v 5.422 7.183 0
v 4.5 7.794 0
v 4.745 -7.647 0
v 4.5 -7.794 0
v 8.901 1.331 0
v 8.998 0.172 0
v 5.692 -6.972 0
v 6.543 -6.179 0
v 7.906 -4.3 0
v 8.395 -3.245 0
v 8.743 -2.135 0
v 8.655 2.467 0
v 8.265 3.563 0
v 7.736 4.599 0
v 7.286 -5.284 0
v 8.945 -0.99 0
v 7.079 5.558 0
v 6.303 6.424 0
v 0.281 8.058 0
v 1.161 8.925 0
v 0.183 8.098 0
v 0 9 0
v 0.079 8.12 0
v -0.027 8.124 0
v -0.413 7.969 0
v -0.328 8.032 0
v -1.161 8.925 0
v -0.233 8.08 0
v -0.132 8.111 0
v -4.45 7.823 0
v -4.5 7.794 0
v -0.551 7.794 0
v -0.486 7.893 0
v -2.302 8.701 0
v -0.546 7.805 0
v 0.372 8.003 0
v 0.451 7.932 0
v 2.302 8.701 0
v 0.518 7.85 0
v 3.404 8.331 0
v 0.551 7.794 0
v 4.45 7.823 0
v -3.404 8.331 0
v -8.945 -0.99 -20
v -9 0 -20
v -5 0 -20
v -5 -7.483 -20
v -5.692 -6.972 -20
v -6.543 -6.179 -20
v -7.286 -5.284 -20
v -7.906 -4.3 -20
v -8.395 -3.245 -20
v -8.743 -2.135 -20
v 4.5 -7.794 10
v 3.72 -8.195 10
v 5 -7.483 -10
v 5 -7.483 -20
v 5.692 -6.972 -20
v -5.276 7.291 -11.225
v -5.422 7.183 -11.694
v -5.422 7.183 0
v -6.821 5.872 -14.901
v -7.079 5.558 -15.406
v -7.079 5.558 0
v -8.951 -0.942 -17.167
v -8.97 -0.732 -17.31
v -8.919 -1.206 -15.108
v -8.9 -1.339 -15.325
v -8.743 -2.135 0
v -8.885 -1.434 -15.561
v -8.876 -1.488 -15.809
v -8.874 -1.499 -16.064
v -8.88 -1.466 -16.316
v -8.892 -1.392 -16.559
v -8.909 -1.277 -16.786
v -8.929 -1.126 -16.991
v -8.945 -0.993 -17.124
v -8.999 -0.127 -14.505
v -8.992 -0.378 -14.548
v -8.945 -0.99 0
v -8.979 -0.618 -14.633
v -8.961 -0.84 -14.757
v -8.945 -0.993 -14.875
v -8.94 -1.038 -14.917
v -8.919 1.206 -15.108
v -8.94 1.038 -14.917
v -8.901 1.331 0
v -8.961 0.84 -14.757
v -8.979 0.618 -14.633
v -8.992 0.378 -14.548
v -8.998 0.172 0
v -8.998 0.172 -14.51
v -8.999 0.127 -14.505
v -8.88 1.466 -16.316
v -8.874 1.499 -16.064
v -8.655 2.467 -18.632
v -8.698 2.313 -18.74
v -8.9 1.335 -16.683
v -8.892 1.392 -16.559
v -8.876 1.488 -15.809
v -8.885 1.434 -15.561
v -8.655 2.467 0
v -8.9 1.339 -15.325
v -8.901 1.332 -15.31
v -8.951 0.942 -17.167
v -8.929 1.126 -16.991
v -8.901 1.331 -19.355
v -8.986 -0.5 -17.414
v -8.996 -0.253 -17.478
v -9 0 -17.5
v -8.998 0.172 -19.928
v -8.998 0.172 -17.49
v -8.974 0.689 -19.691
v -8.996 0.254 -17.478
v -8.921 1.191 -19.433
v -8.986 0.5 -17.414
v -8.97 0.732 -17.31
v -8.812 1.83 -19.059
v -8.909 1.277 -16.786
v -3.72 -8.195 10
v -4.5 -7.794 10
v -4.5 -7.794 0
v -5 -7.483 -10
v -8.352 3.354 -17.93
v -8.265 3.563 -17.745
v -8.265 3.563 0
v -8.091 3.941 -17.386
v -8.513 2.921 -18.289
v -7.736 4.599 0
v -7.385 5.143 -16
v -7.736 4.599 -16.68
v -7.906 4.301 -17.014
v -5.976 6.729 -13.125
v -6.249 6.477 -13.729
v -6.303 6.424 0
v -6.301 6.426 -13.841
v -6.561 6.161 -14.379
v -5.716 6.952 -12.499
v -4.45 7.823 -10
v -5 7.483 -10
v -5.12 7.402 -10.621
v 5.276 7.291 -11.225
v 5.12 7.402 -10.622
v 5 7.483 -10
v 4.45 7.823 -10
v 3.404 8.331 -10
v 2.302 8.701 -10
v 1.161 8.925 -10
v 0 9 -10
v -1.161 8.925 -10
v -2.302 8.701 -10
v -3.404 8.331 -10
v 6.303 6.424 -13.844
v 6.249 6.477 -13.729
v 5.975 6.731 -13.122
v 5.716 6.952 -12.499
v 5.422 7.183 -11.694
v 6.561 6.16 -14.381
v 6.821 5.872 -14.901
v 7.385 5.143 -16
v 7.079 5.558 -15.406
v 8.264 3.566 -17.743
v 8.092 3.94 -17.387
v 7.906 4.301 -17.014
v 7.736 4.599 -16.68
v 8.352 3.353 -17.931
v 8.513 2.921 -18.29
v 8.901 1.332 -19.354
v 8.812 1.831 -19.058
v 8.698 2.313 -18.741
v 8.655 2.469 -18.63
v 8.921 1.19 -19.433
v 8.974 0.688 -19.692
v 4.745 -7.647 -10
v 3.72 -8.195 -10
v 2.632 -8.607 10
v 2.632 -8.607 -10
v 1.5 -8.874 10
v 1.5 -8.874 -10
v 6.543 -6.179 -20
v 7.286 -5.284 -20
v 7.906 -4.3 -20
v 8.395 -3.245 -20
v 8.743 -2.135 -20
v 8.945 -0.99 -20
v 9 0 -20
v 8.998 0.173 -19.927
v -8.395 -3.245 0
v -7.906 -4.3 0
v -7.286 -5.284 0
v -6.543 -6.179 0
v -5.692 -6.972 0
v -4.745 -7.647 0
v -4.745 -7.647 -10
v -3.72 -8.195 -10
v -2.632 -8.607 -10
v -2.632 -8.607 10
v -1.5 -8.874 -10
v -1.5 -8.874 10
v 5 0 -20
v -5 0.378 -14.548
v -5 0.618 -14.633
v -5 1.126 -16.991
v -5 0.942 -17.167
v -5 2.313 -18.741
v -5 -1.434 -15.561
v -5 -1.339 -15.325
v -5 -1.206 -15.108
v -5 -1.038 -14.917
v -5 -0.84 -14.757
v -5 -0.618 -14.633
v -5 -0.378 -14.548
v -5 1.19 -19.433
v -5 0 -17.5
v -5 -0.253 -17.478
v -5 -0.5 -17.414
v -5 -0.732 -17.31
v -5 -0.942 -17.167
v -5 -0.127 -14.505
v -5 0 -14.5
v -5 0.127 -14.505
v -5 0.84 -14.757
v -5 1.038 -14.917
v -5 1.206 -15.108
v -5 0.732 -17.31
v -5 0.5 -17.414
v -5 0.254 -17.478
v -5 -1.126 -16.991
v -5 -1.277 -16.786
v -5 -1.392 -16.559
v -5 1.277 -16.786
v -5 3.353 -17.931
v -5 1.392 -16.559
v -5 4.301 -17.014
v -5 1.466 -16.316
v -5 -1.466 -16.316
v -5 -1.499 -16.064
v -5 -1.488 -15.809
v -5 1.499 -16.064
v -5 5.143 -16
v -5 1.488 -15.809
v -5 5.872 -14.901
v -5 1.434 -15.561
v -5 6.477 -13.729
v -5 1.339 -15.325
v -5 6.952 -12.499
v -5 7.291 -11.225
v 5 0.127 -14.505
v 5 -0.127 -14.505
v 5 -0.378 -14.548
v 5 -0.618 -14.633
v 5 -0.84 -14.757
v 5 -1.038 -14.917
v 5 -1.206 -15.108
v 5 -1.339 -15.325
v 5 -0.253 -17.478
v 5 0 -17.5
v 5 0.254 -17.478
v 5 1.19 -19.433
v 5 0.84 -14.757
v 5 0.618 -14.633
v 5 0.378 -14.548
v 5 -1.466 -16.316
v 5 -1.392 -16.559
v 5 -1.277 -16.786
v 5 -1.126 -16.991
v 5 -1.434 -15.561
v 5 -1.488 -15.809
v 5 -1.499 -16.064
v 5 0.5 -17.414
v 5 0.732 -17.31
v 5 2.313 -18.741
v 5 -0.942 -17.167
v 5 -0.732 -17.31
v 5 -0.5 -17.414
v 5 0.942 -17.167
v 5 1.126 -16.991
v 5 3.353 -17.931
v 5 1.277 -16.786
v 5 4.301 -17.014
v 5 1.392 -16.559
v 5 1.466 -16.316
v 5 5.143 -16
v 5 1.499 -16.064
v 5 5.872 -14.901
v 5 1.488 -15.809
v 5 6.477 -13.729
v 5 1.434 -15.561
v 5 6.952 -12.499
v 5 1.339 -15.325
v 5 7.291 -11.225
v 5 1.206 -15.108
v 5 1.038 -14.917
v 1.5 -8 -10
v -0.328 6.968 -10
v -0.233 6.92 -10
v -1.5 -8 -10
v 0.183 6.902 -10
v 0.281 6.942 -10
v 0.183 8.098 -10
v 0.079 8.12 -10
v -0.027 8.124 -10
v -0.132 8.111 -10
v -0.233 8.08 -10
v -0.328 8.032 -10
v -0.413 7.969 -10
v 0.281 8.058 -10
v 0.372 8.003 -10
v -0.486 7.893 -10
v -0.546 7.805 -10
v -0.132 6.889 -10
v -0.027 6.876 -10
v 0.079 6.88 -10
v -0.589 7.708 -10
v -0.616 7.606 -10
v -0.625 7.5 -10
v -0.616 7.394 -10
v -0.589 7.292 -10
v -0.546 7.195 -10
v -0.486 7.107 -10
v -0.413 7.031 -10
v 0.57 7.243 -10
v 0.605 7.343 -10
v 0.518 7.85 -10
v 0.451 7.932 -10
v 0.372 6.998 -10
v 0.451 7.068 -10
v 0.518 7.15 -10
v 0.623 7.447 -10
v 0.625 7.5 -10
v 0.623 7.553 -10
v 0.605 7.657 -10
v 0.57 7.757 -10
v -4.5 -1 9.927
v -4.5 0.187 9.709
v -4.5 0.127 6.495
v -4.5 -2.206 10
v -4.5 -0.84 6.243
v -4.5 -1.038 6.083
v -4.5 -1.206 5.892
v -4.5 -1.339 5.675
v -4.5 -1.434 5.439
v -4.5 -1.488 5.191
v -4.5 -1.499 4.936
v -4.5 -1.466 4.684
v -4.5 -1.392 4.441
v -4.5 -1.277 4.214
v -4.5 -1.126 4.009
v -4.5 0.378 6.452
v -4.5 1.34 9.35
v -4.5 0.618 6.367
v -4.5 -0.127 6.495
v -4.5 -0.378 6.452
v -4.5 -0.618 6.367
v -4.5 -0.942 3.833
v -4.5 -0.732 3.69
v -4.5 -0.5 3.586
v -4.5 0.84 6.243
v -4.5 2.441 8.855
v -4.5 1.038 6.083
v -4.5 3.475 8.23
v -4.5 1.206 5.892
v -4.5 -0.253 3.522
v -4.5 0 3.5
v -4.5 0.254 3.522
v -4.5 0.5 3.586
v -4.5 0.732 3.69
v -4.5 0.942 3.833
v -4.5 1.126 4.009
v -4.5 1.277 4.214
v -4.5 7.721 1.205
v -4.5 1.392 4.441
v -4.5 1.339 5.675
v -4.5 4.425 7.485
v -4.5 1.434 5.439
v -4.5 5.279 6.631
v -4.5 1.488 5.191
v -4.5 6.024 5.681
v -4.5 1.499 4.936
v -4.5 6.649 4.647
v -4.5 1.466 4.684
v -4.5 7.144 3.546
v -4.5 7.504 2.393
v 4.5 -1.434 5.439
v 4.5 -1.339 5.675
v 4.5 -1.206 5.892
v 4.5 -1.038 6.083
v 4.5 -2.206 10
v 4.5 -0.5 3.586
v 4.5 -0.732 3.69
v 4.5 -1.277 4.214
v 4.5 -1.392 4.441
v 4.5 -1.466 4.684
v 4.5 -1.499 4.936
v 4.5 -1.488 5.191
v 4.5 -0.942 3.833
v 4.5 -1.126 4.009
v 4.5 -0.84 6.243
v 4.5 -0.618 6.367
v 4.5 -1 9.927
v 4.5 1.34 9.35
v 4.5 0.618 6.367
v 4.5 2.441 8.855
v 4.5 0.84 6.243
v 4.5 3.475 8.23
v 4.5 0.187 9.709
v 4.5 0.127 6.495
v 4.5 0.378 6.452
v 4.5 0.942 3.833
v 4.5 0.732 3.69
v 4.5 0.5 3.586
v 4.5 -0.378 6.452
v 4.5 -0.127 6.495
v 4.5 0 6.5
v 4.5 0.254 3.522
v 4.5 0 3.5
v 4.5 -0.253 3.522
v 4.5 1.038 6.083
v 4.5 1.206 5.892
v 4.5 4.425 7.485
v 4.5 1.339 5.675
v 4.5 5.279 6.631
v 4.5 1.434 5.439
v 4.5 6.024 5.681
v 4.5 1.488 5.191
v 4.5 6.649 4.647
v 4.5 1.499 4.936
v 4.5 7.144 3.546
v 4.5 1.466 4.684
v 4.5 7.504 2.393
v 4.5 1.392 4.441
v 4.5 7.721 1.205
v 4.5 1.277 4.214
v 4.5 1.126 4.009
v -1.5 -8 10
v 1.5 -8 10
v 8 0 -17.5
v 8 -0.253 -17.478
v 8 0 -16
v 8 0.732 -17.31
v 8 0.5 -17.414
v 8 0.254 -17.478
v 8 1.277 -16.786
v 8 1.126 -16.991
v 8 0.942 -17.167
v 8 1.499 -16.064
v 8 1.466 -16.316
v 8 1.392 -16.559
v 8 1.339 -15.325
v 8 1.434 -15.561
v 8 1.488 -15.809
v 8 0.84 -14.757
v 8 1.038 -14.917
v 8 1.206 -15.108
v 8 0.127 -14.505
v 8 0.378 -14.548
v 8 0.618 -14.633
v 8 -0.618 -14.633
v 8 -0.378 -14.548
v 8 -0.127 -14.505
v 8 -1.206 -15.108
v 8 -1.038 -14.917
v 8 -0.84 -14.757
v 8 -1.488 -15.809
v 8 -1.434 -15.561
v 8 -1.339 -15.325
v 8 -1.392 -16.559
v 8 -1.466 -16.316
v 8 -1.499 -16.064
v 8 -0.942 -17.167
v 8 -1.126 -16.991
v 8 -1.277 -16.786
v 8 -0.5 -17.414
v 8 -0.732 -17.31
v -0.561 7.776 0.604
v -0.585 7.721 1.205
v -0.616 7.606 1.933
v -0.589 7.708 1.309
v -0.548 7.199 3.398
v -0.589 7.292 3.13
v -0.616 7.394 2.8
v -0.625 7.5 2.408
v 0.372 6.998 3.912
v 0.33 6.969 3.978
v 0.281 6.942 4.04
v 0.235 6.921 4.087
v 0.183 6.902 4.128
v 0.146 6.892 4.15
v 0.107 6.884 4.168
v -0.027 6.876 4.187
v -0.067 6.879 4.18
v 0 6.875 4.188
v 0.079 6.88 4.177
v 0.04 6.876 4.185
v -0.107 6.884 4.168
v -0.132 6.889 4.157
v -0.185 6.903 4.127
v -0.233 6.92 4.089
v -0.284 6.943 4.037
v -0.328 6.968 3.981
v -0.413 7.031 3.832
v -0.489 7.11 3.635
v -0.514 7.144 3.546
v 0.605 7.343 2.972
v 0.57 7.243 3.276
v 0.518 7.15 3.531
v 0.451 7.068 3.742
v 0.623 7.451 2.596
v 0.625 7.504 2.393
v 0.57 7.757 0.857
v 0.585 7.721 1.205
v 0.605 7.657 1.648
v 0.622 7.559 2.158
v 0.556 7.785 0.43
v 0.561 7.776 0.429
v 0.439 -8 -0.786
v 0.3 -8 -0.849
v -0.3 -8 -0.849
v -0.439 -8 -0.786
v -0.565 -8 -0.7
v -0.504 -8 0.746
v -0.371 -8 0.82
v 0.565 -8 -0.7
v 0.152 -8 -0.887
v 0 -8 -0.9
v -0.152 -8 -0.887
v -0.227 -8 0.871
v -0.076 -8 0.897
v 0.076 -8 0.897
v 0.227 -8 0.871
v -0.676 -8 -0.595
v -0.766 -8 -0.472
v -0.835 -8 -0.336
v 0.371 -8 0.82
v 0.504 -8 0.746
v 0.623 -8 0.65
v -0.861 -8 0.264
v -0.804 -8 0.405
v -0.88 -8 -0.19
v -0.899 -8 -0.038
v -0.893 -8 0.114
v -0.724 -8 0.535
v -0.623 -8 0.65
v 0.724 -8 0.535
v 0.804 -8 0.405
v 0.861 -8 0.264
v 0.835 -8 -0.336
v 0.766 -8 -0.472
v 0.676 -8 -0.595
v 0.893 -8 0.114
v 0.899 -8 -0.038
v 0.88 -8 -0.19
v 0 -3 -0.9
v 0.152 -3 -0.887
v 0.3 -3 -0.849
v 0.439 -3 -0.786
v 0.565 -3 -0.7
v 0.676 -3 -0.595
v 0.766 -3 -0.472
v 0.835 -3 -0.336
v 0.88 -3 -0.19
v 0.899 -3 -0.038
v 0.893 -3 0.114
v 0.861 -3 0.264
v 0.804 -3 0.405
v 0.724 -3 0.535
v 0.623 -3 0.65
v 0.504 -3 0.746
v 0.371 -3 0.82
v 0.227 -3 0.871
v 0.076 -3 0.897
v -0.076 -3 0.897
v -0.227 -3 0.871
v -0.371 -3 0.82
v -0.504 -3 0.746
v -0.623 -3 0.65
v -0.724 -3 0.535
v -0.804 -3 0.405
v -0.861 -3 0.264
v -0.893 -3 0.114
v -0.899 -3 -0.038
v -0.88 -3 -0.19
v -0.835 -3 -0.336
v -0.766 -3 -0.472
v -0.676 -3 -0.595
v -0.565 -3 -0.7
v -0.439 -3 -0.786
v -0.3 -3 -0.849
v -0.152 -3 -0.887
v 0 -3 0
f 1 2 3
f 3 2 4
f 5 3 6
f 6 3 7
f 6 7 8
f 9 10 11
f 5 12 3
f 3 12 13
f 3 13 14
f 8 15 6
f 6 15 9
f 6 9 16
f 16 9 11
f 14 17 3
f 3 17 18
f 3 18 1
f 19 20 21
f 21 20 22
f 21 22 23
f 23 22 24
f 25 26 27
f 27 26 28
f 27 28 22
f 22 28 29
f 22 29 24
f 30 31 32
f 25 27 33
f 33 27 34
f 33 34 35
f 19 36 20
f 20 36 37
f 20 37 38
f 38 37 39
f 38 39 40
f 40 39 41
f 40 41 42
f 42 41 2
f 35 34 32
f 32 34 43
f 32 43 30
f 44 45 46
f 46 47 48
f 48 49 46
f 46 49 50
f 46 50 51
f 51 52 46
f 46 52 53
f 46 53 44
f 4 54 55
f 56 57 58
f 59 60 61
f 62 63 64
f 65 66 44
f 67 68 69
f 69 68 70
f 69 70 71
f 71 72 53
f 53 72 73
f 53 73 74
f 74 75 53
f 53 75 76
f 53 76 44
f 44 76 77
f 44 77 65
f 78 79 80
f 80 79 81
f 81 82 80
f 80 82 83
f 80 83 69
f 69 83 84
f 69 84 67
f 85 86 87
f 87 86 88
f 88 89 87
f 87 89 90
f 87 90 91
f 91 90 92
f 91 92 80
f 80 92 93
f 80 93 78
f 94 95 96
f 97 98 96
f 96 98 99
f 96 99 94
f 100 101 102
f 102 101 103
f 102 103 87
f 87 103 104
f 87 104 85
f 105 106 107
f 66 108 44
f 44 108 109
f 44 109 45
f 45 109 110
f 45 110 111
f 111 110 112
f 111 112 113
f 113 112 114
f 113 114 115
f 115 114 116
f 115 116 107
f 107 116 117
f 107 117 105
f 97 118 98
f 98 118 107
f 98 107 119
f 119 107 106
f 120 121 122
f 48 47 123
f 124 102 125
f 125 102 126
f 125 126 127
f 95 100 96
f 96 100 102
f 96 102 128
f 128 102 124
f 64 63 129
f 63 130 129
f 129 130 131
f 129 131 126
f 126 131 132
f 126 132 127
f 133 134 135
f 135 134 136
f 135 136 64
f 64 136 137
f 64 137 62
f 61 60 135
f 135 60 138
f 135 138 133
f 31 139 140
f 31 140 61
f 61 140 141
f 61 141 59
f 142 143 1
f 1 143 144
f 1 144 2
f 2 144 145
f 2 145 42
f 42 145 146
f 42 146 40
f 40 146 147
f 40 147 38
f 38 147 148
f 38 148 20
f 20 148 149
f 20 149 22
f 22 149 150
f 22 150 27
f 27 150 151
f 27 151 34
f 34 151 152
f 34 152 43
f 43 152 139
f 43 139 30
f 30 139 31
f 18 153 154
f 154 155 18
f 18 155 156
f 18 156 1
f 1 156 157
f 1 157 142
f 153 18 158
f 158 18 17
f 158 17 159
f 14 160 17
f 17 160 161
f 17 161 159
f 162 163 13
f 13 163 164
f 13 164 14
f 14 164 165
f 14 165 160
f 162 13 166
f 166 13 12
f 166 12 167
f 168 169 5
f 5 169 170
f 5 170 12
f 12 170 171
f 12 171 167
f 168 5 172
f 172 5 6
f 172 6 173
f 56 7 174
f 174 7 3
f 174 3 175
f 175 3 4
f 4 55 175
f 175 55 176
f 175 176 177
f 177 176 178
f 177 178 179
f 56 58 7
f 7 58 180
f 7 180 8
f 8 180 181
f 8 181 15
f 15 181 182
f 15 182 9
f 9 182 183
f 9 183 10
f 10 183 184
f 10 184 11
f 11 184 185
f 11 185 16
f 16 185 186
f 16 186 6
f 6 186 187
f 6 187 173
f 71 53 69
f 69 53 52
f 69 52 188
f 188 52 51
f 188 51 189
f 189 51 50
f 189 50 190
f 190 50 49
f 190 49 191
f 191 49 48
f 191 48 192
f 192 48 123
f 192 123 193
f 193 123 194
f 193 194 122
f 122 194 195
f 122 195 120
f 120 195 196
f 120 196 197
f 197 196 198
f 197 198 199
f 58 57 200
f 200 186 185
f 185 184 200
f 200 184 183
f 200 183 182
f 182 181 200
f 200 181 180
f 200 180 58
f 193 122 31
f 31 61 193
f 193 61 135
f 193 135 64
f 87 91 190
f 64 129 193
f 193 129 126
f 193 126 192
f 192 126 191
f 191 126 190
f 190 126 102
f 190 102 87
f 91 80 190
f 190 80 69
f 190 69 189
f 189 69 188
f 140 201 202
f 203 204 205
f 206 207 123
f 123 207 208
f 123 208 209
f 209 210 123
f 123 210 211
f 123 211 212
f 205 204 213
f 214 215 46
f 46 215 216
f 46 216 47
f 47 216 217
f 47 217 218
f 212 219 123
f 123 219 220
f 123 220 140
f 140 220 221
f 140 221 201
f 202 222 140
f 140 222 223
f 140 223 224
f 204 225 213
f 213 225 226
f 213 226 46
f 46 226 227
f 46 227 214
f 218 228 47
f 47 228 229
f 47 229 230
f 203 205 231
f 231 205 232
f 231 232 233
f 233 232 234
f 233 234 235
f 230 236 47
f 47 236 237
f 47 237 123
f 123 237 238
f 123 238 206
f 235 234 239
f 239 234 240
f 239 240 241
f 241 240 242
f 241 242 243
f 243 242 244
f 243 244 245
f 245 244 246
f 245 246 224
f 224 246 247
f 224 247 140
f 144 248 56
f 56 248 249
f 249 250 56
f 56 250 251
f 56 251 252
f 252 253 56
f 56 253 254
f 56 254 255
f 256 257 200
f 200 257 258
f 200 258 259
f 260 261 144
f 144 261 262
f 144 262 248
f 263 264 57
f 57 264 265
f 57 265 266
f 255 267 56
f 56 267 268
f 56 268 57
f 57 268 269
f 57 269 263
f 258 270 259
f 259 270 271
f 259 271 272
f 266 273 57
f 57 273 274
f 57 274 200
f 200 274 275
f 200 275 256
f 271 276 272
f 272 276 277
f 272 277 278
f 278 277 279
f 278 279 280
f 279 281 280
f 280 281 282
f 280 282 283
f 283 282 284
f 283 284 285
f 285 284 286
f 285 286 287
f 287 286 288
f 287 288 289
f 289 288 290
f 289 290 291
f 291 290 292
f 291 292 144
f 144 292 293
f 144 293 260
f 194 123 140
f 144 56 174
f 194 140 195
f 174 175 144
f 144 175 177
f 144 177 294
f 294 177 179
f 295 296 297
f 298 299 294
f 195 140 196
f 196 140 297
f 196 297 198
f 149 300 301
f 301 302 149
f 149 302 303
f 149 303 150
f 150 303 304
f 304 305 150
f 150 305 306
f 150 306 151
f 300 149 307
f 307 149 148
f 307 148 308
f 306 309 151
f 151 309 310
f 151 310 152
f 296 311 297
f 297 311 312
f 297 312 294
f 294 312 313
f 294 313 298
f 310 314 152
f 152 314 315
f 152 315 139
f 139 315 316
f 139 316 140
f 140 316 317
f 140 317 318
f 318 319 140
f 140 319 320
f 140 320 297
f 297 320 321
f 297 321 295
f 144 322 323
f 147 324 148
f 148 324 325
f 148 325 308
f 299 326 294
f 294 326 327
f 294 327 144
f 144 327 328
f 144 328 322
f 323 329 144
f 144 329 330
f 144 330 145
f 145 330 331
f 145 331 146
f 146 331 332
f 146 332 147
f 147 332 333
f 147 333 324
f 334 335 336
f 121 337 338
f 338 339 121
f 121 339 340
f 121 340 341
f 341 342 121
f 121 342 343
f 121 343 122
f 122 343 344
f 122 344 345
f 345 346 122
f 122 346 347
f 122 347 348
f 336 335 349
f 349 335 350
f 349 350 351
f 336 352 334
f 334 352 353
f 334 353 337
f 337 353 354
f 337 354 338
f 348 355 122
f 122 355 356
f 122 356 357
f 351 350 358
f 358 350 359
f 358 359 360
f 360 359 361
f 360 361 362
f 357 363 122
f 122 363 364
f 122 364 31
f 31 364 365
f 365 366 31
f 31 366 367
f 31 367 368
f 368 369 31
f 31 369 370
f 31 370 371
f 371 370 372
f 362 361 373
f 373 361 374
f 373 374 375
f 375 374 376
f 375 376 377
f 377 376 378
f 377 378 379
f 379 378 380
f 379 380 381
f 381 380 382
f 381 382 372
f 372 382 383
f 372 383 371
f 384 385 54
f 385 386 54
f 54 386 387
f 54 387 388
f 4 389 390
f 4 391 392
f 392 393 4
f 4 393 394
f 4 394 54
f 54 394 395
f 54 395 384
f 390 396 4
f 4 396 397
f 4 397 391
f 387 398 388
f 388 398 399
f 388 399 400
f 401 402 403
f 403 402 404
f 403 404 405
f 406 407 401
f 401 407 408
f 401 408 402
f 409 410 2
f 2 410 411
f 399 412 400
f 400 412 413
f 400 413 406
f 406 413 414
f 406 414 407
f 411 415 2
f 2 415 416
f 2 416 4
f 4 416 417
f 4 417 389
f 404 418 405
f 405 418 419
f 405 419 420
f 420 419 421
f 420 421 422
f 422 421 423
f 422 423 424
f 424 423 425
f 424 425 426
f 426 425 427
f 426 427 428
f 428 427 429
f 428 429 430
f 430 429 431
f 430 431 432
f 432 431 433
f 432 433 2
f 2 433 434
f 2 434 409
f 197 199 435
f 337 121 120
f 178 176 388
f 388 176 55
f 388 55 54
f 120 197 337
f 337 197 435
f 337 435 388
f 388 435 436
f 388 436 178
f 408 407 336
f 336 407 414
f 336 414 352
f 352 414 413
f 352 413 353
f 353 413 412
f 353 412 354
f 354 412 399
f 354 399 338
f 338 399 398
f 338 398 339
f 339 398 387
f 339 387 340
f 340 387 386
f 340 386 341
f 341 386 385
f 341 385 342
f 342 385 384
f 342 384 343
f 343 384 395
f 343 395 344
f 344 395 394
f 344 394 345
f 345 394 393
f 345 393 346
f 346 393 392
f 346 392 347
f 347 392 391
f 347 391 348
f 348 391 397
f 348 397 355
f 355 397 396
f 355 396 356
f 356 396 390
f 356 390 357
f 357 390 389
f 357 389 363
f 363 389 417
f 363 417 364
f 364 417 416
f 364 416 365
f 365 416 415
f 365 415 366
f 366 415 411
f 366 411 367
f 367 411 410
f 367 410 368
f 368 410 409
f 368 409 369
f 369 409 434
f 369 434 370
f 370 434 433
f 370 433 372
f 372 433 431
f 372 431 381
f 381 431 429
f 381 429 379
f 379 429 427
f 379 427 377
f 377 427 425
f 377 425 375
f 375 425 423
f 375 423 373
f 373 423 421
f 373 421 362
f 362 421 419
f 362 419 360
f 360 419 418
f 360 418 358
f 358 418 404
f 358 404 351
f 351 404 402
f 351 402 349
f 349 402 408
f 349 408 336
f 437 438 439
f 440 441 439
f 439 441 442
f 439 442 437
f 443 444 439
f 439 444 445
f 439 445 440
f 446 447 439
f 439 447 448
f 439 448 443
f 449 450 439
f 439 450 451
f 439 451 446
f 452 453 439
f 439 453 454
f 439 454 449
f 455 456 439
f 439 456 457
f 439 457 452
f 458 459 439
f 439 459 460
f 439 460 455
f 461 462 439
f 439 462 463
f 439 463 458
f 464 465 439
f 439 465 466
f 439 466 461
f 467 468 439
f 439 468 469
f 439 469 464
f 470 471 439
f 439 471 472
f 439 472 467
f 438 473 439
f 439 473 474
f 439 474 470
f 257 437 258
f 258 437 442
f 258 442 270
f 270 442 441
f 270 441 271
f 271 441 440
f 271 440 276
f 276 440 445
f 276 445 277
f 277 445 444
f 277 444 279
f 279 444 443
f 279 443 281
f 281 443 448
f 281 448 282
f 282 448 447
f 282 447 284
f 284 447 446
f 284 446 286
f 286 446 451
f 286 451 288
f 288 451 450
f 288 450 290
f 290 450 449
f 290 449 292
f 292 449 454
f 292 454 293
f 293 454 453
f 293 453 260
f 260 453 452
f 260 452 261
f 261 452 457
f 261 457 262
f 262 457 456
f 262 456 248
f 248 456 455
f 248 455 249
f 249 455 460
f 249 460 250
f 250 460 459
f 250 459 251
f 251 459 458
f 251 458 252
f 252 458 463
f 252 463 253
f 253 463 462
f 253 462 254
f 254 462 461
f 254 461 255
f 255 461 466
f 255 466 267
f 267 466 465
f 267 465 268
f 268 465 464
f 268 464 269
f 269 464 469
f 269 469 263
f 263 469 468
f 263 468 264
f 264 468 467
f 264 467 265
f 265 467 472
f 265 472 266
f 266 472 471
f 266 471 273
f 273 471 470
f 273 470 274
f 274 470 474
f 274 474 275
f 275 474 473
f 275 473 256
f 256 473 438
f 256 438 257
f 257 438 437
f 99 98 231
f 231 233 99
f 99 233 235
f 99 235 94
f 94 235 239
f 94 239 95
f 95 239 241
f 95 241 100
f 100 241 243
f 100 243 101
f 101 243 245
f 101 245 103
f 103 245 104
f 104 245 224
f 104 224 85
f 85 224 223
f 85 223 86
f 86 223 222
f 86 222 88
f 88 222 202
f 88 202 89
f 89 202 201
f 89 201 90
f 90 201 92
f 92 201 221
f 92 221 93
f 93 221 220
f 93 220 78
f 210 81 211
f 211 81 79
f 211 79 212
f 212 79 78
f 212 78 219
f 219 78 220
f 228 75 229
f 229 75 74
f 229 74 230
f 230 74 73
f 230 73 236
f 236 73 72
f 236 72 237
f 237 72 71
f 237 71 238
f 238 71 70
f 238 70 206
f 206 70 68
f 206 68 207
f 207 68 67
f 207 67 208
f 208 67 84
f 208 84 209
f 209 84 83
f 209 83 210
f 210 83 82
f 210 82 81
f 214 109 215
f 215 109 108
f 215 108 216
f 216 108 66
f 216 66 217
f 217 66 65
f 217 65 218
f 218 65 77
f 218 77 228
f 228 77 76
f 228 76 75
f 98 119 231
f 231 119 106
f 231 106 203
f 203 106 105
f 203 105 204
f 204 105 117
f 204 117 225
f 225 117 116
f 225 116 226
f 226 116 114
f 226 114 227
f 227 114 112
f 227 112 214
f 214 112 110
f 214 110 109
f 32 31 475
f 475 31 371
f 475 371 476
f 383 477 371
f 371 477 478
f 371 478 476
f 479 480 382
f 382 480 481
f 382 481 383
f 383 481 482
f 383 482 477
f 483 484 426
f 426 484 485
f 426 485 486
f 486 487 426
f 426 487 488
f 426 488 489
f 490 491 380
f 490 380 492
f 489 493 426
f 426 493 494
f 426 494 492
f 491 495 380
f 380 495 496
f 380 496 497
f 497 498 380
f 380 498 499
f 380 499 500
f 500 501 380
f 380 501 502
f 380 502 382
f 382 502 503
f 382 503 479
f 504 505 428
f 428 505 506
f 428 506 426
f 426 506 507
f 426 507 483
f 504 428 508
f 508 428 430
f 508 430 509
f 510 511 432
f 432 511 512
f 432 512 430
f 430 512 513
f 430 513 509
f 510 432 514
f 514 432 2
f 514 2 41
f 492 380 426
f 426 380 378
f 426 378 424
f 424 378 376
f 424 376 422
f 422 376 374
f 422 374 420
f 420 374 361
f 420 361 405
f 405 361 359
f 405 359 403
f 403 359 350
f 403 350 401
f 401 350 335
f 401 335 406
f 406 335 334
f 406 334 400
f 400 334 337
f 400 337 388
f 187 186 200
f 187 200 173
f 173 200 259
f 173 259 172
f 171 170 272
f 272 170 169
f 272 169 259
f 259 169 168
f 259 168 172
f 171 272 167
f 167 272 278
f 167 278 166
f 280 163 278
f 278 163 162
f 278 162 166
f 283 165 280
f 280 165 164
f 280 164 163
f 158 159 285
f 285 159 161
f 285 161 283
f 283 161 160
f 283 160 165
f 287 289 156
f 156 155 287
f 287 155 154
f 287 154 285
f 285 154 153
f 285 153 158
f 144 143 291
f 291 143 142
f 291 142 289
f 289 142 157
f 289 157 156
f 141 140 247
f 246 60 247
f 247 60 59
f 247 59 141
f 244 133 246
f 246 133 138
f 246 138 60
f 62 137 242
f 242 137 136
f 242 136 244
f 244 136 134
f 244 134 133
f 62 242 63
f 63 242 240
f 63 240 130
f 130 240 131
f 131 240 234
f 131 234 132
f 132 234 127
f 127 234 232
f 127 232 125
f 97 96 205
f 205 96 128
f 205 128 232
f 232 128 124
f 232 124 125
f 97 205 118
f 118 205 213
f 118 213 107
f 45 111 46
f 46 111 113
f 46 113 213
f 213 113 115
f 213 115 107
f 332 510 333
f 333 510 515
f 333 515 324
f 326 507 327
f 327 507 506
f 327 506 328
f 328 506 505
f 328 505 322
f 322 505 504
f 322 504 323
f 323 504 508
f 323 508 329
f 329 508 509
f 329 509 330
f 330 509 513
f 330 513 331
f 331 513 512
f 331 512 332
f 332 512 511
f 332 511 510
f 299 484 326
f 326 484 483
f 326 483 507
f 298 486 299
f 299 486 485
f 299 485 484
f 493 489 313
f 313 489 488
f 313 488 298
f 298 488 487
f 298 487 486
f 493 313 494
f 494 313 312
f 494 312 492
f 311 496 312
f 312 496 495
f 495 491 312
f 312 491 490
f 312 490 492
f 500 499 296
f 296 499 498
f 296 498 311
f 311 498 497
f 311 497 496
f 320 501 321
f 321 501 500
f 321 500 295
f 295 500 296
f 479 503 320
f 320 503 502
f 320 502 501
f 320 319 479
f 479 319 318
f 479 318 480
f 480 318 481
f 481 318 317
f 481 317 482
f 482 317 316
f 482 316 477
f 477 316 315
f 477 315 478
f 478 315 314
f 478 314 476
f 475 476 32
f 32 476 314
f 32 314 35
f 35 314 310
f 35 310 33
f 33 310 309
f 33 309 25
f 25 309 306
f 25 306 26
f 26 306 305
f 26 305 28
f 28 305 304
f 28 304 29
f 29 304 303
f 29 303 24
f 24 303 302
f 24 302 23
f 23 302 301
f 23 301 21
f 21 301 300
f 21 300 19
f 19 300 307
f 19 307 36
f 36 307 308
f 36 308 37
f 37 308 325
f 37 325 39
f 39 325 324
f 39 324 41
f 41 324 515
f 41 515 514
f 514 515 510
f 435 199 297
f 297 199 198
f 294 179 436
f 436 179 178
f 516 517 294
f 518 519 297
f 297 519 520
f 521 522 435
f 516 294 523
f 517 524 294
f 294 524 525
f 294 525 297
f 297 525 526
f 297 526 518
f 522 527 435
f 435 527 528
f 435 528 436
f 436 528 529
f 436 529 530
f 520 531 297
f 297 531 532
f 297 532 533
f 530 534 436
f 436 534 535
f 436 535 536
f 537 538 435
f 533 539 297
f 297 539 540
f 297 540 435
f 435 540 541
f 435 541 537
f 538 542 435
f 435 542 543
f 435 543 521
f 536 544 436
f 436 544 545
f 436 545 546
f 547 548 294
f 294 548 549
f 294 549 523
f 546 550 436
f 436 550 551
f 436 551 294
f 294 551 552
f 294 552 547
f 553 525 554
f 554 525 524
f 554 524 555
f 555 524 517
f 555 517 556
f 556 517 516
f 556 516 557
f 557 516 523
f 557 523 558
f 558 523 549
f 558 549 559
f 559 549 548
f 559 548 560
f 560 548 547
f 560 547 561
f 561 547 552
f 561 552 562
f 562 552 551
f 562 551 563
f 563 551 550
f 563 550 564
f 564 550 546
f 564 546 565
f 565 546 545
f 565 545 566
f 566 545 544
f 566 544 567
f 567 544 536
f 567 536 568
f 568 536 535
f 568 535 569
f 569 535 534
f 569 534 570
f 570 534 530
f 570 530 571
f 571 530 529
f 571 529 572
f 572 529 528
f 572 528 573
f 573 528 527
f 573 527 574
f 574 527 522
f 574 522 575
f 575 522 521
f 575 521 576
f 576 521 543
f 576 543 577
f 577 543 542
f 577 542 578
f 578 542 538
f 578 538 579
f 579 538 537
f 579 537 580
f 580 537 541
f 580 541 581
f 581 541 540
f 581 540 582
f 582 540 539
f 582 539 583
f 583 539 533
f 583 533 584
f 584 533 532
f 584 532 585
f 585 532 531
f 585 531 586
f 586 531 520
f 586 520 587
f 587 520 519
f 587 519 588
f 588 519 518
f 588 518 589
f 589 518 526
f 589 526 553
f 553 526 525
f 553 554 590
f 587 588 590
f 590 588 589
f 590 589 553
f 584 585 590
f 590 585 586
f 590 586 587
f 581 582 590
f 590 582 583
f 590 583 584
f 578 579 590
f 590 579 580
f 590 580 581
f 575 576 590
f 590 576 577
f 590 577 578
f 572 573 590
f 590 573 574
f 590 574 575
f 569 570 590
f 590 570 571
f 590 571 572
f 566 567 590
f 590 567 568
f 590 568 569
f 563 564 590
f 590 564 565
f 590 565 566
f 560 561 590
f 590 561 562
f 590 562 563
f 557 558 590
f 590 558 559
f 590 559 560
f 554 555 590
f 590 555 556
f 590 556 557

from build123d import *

# Parameters (mm, degrees)
SKETCH1_R               = 9
BOSS_EXTRUDE1_DEPTH     = 20
CUT_EXTRUDE1_DEPTH      = 24.706539182
CUT_EXTRUDE1_DEPTH_BACK = 24.706539182
SKETCH2_W               = 10
SKETCH2_H               = 10
BOSS_EXTRUDE2_START     = 10
BOSS_EXTRUDE2_DEPTH     = 10
CUT_EXTRUDE2_DEPTH      = 8
CUT_EXTRUDE2_DEPTH_BACK = 24.706539182
SKETCH4_R               = 1.5
FILLET1_R               = 10
CUT_EXTRUDE3_DEPTH      = 24.706539343
CUT_EXTRUDE3_DEPTH_BACK = 24.706539343
SKETCH6_R               = 0.625
CUT_EXTRUDE4_DEPTH      = 32
CUT_EXTRUDE5_REACH      = 25.707
SKETCH7_W               = 3
SKETCH7_H               = 2
SKETCH8_R               = 0.9
CUT_EXTRUDE6_DEPTH      = 5


with BuildPart() as part:
    # Sketch1 → Boss-Extrude1 (new body)
    with BuildSketch(Plane.XY):
        Circle(SKETCH1_R)
    extrude(amount=-BOSS_EXTRUDE1_DEPTH)

    # Sketch2 → Cut-Extrude1 (cut, two sides: drawn at the far end of the back side and taken through both)
    with BuildSketch(Plane(origin=(0, 0, 0), x_dir=(1, 0, 0), z_dir=(0, 1, 0)).offset(-CUT_EXTRUDE1_DEPTH_BACK)):
        with Locations((0, 15)):
            Rectangle(SKETCH2_W, SKETCH2_H)
    extrude(amount=CUT_EXTRUDE1_DEPTH + CUT_EXTRUDE1_DEPTH_BACK, mode=Mode.SUBTRACT)

    # Sketch3 → Boss-Extrude2 (add)
    with BuildSketch(Plane.XY.offset(BOSS_EXTRUDE2_START)):
        with BuildLine():
            Line((-4.5, 7.794228634), (-4.5, -7.794228634))
            ThreePointArc((-4.5, -7.794228634), (0, -9), (4.5, -7.794228634))
            Line((4.5, -7.794228634), (4.5, 7.794228634))
            Line((4.5, 7.794228634), (-4.5, 7.794228634))
        make_face()
    extrude(amount=-BOSS_EXTRUDE2_DEPTH)

    # Sketch4 → Cut-Extrude2 (cut, two sides: drawn at the far end of the back side and taken through both)
    with BuildSketch(Plane(origin=(0, 0, 0), x_dir=(0, 0, -1), z_dir=(1, 0, 0)).offset(-CUT_EXTRUDE2_DEPTH_BACK)):
        with Locations((-5, 0)):
            Circle(SKETCH4_R)
        with Locations((16, 0)):
            Circle(SKETCH4_R)
    extrude(amount=CUT_EXTRUDE2_DEPTH + CUT_EXTRUDE2_DEPTH_BACK, mode=Mode.SUBTRACT)

    # Fillet1
    fillet1_edges = [part.edges().sort_by_distance(p)[0] for p in [
        (0, 7.794228634, 10),
    ]]
    fillet(fillet1_edges, radius=FILLET1_R - 0.0001)  # a hair under: the kernel refuses the full size

    # Sketch5 → Cut-Extrude3 (cut, two sides: drawn at the far end of the back side and taken through both)
    with BuildSketch(Plane(origin=(0, 0, 0), x_dir=(0, 0, -1), z_dir=(1, 0, 0)).offset(-CUT_EXTRUDE3_DEPTH_BACK)):
        with BuildLine():
            Line((10, 7.483314774), (20, 7.483314774))
            Line((20, 7.483314774), (20, 0))
            ThreePointArc((20, 0), (16.031389946, 5.119910176), (10, 7.483314774))
        make_face()
    extrude(amount=CUT_EXTRUDE3_DEPTH + CUT_EXTRUDE3_DEPTH_BACK, mode=Mode.SUBTRACT)

    # Sketch6 → Cut-Extrude4 (cut)
    with BuildSketch(Plane(origin=(0, 0, -20), x_dir=(-1, 0, 0), z_dir=(0, 0, -1))):
        with Locations(Location((0, 7.5, 0), (0, 0, 28.084018699))):
            Circle(SKETCH6_R)
    extrude(amount=-CUT_EXTRUDE4_DEPTH, mode=Mode.SUBTRACT)

    # Sketch7 → Cut-Extrude5 (cut, up to next)
    with BuildSketch(Plane(origin=(0, 0, -10), x_dir=(-1, 0, 0), z_dir=(0, 0, -1)), mode=Mode.PRIVATE) as cut_extrude5_sk1:
        with Locations((0, -9)):
            Rectangle(SKETCH7_W, SKETCH7_H)
    cut_extrude5_tool1 = extrude(cut_extrude5_sk1.sketch, amount=-CUT_EXTRUDE5_REACH, mode=Mode.PRIVATE) & part.part
    add(cut_extrude5_tool1.solids().sort_by_distance((0, -9, -10))[0], mode=Mode.SUBTRACT)

    # Sketch8 → Cut-Extrude6 (cut)
    with BuildSketch(Plane(origin=(0, -8, 0), x_dir=(-1, 0, 0), z_dir=(0, -1, 0))):
        with Locations(Location((0, 0, 0), (0, 0, 90))):
            Circle(SKETCH8_R)
    extrude(amount=-CUT_EXTRUDE6_DEPTH, mode=Mode.SUBTRACT)


solid = part.part
